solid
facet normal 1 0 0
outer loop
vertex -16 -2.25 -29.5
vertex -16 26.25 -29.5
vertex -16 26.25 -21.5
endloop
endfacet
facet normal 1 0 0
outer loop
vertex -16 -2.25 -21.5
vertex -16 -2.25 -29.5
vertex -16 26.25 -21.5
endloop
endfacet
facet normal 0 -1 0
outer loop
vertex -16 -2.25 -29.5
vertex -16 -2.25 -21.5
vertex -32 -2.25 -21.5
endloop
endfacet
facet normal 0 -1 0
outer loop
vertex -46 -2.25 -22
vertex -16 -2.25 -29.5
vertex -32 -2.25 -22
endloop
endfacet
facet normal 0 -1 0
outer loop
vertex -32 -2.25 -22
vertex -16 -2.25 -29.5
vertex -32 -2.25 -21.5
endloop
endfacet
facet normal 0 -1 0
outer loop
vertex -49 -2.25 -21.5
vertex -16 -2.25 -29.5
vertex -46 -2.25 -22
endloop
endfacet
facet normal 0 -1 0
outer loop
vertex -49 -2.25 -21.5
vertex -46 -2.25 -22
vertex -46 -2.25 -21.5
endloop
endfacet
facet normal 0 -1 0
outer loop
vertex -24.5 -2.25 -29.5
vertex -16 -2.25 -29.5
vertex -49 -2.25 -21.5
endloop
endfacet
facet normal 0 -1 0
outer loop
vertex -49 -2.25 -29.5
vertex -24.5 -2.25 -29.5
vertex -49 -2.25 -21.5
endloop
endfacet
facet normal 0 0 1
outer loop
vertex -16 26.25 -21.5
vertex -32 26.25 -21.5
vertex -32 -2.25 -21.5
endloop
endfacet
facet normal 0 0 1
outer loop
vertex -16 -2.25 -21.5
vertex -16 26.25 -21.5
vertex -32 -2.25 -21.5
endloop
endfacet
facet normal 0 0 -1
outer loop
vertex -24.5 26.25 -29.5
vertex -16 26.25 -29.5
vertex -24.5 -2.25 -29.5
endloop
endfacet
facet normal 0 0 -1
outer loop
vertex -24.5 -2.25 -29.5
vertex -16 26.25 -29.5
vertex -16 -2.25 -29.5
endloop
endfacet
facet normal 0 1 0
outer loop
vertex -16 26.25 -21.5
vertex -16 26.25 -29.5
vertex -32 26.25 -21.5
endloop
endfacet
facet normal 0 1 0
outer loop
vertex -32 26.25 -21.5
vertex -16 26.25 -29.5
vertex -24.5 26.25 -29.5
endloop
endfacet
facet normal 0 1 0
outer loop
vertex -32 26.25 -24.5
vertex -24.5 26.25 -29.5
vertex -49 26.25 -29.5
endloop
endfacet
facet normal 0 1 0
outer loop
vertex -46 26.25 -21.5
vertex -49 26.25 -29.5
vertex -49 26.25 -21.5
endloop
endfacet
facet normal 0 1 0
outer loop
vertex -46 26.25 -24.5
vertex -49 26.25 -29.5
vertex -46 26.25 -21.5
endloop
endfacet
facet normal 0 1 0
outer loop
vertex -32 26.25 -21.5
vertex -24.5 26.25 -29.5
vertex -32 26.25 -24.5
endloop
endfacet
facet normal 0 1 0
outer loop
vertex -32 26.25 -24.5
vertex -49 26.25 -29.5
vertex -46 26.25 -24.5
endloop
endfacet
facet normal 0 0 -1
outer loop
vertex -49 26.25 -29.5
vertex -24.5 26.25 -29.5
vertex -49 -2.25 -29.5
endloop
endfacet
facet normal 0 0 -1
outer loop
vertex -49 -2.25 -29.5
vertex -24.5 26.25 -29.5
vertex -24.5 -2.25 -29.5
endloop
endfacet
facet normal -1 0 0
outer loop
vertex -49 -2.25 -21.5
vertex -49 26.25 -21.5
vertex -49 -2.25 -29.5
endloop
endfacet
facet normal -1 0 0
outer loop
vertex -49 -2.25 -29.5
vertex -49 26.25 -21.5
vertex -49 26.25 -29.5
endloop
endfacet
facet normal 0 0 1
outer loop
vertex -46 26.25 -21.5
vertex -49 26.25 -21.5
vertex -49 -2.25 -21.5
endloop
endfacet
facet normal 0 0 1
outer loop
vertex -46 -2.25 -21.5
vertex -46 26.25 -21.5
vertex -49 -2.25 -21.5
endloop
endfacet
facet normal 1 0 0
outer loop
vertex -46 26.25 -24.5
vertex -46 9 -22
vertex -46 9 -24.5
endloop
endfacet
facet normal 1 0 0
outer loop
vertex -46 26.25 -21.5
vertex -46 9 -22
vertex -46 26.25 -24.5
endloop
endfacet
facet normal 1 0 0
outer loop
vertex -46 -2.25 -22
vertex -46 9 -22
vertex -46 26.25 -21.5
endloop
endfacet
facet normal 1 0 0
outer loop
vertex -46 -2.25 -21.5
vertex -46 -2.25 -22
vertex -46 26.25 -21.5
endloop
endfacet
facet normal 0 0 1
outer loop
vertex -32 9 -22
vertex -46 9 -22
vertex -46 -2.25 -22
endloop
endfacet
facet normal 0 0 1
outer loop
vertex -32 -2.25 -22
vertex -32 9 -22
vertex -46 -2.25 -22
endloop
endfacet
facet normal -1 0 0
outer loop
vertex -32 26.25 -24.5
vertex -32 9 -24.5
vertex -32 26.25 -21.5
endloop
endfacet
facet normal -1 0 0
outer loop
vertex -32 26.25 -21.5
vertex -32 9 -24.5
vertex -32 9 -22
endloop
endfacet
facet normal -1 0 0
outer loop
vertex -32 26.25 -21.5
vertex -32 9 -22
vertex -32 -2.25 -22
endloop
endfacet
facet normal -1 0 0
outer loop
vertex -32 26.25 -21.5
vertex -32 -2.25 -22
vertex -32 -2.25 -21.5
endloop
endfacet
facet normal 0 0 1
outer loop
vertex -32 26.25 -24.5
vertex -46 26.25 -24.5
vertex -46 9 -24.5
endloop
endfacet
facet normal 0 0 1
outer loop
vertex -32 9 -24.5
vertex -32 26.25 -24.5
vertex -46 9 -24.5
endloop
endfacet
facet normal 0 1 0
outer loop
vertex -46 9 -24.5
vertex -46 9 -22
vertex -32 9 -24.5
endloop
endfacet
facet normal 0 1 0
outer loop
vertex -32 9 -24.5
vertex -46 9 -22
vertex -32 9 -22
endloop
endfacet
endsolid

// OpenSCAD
/* Hive13 SumoBot Chassis/Frame */ 

// The front plow takes up a depth of 16.
// Some space is used for linesensor screw holes ~14mm

max_w = 98;
max_d = 98 - 16;

batterypack_w = 63;
batterypack_h = 15;
batterypack_d = 49;

bpack2_w = 54;
bpack2_h = 11;
bpack2_d = 31;

micro_w = 70;
micro_h = 15; // We just go to the top of the shield
micro_d = 54;

frame_w = max_w;
frame_h = 3;
frame_d = max_d;

// tire + motor thickness ~30 
wheel_radius = 15.5;
wheel_thickness = 14;
motor_w =14;
motor_h = 54;
motor_d = 20;
lip_w = motor_w;
lip_h = 18;
lip_d = 25;
lip_dist_from_bottom_motor = 36;
tire_distance = 9;
offset_w =2;
wheel_position=10; 
clearance_ground=2;

tab_plow_d=10;// tab to connect to screw in with the plow
linesensor_spacing = 18;
linesensor_depth = 23;
frame_wheel_d = 36;
wheel_clearance = 17;
backwall_thickness = 15;

module baseframe() {
difference() {
union() {
cube([frame_w, frame_d, frame_h]);
// mounting tabs
translate(v=[(frame_w - bpack2_d) /2, frame_d, 0]) {
difference() {
cube([bpack2_d,10 , frame_h+6]);
translate(v=[5, 5, 0]) {
cylinder(r = 2, h=frame_h+6);
}
translate(v=[bpack2_d-5, 5, 0]) {
cylinder(r = 2, h=frame_h+6);
}
}
}
//translate(v=[frame_w-linesensor_spacing-10, frame_d, 0]) {
//difference() {
// cube([10, 10, frame_h]);
// translate(v=[5, 5, 0]) {
// cylinder(r = 2, h=frame_h);
// }
//}
// }
// Wheel/Motor holder block
difference() // subtract out overhangs and wire section
{//Motor holder both sides.....
translate(v = [0,frame_wheel_d+1,frame_h]) {
cube([frame_w, frame_d -(frame_wheel_d + linesensor_depth)-2,motor_d-1+offset_w]);// replace batterypack_h + bpack2_h + micro_h by motor_d -1
}
// Removes space over motors
// translate(v = [2,frame_wheel_d+1,frame_h +bpack2_h]) {
// cube([motor_w, frame_d -(frame_wheel_d + linesensor_depth-1), batterypack_h + micro_h]);
// }
//translate(v = [frame_w-motor_w-2,frame_wheel_d+1,frame_h +bpack2_h]) {
// cube([motor_w, frame_d -(frame_wheel_d + linesensor_depth-1), batterypack_h + micro_h]);
// }
// Remove area over batterypacks
translate(v = [(frame_w + batterypack_d) / 2, frame_d-batterypack_w, frame_h+bpack2_h+wheel_clearance]) {
rotate([0,0,90]) {
batterypack();
}
}

translate(v = [(frame_w + bpack2_d) /2,frame_d-bpack2_w,frame_h]) {
rotate([0,0,90]) {
//bpack2();
cube([bpack2_w, bpack2_d, bpack2_h+wheel_clearance]);
}
}
translate(v = [(frame_w - micro_d) / 2, frame_d-batterypack_w, frame_h+bpack2_h+batterypack_h+wheel_clearance]) {
cube([micro_d, batterypack_w, 40]);
}

}
// Backwall
translate(v=[(frame_w + bpack2_d+10) /2-bpack2_d,frame_d-bpack2_w-backwall_thickness-2,frame_h]) {
cube([bpack2_d-10, backwall_thickness, bpack2_h+wheel_clearance]);
}
// Backwall second piece
translate(v = [(frame_w + bpack2_d)/2-bpack2_d,10,frame_h]) {
cube([bpack2_d, 7, bpack2_h+micro_h+batterypack_h]);
}
} // union


// Remove linesensor area
translate(v = [0,frame_d-linesensor_depth,0]) {
cube([linesensor_spacing, linesensor_depth, frame_h]);
}
translate(v = [frame_w - linesensor_spacing,frame_d-linesensor_depth,0]) {
cube([linesensor_spacing, linesensor_depth, frame_h]);
}
// Remove tires
translate(v = [0,0,0]) {
cube([motor_w + wheel_thickness + 4, frame_wheel_d, frame_h]);
}
translate(v = [frame_w-motor_w-wheel_thickness-4,0,0]) {
cube([motor_w + wheel_thickness + 4, frame_wheel_d, frame_h]);
}
// Remove unneeded space in the back
translate(v =[(frame_w + bpack2_d-5) /2-bpack2_d,0,0]) {
cube([bpack2_d+10, 10, frame_h]);
}
// Remove a hole for power switch
translate(v = [frame_w-linesensor_spacing-15,frame_d-linesensor_depth,0]) {
cube([15, 23, frame_h]);
}
// This one is mainly for looks
translate(v = [linesensor_spacing,frame_d-linesensor_depth,0]) {
cube([15, 23, frame_h]);
}
// Remove the wheels
// Right Tire
translate(v = [max_w-2, 7,-motor_d+22+offset_w]) {
rotate(a = [270, 180, 0]) {
motor();
}
}
// Left Tire
translate(v = [2, 7, 22+offset_w]) {
rotate(a = [270, 0, 0]) {
motor();
}
}

} // difference
}

module batterypack() {
color([0, 127, 127, 255]) {
cube(size=[batterypack_d, batterypack_w, batterypack_h],center=true);
}
}

module bpack2() {
color([127,127,0,255]) {
cube([bpack2_w, bpack2_d, bpack2_h]);
}
}

module micro() {
cube([micro_w, micro_d, micro_h]);
}

module motor() {
color([0,0,0,255]) {
union() {
cube(size=[motor_w, motor_h, motor_d], center = true );
// Lip
translate(v = [0, lip_dist_from_bottom_motor-lip_h, 0]) {//[0, -(lip_d-motor_d)/2, lip_dist_from_bottom_motor]
cube(size=[lip_w, lip_h, lip_d],center=true);
}
// wheel
translate(v = [-motor_w,-(motor_h-wheel_position)/2,0]) {//[motor_w,motor_d/2,motor_d/2]
rotate(a = [0, 90, 0]) {
cylinder(r = wheel_radius, h = wheel_thickness, center=true);
}
}
}
}
}


//
//translate(v =[0,0,6]) {
//baseframe();
//}

// NEW START WITH CENTERED DESIGN //

rotate(a=[0,180,0]){
difference(){
union(){
//motor top holder 
translate(v=[0,12,frame_h/2+(bpack2_h+wheel_clearance)/2]){
cube(size=[frame_w,motor_h-lip_h-wheel_radius-wheel_position+lip_h,bpack2_h+wheel_clearance], center=true);}
}//union end
//start removing 
//motors
translate(v=[(frame_w-motor_w)/2-3,0,wheel_radius-frame_h/2-clearance_ground]){
rotate(a=[0,0,0]){
motor();}}
mirror ([1,0,0]) {
translate(v=[(frame_w-motor_w)/2-3,0,wheel_radius-frame_h/2-clearance_ground]){
rotate(a=[0,0,0]){
motor();}}}
// big battery
translate(v=[0,0,frame_h/2+(bpack2_h+micro_h+batterypack_h)/2+batterypack_h]){
batterypack();}
//center piece between wheels
translate(v=[0,0,frame_h/2+ (bpack2_h+wheel_clearance)/2]){
cube(size=[bpack2_d+1, bpack2_w, bpack2_h+wheel_clearance],center=true);}
//motor holder
translate(v=[0,12,(motor_d+frame_h)/2]){
cube(size=[frame_w,motor_h-lip_h-wheel_radius-wheel_position+lip_h,motor_d], center=true);}// replace batterypack_h + bpack2_h + micro_h by motor_d -1
mirror ([1,0,0]) {
translate(v=[(frame_w-motor_w)/2-3,0,wheel_radius-frame_h/2-clearance_ground]){
cube(size=[50,55,50],center=true);}}
}//difference end
}//rotate end
